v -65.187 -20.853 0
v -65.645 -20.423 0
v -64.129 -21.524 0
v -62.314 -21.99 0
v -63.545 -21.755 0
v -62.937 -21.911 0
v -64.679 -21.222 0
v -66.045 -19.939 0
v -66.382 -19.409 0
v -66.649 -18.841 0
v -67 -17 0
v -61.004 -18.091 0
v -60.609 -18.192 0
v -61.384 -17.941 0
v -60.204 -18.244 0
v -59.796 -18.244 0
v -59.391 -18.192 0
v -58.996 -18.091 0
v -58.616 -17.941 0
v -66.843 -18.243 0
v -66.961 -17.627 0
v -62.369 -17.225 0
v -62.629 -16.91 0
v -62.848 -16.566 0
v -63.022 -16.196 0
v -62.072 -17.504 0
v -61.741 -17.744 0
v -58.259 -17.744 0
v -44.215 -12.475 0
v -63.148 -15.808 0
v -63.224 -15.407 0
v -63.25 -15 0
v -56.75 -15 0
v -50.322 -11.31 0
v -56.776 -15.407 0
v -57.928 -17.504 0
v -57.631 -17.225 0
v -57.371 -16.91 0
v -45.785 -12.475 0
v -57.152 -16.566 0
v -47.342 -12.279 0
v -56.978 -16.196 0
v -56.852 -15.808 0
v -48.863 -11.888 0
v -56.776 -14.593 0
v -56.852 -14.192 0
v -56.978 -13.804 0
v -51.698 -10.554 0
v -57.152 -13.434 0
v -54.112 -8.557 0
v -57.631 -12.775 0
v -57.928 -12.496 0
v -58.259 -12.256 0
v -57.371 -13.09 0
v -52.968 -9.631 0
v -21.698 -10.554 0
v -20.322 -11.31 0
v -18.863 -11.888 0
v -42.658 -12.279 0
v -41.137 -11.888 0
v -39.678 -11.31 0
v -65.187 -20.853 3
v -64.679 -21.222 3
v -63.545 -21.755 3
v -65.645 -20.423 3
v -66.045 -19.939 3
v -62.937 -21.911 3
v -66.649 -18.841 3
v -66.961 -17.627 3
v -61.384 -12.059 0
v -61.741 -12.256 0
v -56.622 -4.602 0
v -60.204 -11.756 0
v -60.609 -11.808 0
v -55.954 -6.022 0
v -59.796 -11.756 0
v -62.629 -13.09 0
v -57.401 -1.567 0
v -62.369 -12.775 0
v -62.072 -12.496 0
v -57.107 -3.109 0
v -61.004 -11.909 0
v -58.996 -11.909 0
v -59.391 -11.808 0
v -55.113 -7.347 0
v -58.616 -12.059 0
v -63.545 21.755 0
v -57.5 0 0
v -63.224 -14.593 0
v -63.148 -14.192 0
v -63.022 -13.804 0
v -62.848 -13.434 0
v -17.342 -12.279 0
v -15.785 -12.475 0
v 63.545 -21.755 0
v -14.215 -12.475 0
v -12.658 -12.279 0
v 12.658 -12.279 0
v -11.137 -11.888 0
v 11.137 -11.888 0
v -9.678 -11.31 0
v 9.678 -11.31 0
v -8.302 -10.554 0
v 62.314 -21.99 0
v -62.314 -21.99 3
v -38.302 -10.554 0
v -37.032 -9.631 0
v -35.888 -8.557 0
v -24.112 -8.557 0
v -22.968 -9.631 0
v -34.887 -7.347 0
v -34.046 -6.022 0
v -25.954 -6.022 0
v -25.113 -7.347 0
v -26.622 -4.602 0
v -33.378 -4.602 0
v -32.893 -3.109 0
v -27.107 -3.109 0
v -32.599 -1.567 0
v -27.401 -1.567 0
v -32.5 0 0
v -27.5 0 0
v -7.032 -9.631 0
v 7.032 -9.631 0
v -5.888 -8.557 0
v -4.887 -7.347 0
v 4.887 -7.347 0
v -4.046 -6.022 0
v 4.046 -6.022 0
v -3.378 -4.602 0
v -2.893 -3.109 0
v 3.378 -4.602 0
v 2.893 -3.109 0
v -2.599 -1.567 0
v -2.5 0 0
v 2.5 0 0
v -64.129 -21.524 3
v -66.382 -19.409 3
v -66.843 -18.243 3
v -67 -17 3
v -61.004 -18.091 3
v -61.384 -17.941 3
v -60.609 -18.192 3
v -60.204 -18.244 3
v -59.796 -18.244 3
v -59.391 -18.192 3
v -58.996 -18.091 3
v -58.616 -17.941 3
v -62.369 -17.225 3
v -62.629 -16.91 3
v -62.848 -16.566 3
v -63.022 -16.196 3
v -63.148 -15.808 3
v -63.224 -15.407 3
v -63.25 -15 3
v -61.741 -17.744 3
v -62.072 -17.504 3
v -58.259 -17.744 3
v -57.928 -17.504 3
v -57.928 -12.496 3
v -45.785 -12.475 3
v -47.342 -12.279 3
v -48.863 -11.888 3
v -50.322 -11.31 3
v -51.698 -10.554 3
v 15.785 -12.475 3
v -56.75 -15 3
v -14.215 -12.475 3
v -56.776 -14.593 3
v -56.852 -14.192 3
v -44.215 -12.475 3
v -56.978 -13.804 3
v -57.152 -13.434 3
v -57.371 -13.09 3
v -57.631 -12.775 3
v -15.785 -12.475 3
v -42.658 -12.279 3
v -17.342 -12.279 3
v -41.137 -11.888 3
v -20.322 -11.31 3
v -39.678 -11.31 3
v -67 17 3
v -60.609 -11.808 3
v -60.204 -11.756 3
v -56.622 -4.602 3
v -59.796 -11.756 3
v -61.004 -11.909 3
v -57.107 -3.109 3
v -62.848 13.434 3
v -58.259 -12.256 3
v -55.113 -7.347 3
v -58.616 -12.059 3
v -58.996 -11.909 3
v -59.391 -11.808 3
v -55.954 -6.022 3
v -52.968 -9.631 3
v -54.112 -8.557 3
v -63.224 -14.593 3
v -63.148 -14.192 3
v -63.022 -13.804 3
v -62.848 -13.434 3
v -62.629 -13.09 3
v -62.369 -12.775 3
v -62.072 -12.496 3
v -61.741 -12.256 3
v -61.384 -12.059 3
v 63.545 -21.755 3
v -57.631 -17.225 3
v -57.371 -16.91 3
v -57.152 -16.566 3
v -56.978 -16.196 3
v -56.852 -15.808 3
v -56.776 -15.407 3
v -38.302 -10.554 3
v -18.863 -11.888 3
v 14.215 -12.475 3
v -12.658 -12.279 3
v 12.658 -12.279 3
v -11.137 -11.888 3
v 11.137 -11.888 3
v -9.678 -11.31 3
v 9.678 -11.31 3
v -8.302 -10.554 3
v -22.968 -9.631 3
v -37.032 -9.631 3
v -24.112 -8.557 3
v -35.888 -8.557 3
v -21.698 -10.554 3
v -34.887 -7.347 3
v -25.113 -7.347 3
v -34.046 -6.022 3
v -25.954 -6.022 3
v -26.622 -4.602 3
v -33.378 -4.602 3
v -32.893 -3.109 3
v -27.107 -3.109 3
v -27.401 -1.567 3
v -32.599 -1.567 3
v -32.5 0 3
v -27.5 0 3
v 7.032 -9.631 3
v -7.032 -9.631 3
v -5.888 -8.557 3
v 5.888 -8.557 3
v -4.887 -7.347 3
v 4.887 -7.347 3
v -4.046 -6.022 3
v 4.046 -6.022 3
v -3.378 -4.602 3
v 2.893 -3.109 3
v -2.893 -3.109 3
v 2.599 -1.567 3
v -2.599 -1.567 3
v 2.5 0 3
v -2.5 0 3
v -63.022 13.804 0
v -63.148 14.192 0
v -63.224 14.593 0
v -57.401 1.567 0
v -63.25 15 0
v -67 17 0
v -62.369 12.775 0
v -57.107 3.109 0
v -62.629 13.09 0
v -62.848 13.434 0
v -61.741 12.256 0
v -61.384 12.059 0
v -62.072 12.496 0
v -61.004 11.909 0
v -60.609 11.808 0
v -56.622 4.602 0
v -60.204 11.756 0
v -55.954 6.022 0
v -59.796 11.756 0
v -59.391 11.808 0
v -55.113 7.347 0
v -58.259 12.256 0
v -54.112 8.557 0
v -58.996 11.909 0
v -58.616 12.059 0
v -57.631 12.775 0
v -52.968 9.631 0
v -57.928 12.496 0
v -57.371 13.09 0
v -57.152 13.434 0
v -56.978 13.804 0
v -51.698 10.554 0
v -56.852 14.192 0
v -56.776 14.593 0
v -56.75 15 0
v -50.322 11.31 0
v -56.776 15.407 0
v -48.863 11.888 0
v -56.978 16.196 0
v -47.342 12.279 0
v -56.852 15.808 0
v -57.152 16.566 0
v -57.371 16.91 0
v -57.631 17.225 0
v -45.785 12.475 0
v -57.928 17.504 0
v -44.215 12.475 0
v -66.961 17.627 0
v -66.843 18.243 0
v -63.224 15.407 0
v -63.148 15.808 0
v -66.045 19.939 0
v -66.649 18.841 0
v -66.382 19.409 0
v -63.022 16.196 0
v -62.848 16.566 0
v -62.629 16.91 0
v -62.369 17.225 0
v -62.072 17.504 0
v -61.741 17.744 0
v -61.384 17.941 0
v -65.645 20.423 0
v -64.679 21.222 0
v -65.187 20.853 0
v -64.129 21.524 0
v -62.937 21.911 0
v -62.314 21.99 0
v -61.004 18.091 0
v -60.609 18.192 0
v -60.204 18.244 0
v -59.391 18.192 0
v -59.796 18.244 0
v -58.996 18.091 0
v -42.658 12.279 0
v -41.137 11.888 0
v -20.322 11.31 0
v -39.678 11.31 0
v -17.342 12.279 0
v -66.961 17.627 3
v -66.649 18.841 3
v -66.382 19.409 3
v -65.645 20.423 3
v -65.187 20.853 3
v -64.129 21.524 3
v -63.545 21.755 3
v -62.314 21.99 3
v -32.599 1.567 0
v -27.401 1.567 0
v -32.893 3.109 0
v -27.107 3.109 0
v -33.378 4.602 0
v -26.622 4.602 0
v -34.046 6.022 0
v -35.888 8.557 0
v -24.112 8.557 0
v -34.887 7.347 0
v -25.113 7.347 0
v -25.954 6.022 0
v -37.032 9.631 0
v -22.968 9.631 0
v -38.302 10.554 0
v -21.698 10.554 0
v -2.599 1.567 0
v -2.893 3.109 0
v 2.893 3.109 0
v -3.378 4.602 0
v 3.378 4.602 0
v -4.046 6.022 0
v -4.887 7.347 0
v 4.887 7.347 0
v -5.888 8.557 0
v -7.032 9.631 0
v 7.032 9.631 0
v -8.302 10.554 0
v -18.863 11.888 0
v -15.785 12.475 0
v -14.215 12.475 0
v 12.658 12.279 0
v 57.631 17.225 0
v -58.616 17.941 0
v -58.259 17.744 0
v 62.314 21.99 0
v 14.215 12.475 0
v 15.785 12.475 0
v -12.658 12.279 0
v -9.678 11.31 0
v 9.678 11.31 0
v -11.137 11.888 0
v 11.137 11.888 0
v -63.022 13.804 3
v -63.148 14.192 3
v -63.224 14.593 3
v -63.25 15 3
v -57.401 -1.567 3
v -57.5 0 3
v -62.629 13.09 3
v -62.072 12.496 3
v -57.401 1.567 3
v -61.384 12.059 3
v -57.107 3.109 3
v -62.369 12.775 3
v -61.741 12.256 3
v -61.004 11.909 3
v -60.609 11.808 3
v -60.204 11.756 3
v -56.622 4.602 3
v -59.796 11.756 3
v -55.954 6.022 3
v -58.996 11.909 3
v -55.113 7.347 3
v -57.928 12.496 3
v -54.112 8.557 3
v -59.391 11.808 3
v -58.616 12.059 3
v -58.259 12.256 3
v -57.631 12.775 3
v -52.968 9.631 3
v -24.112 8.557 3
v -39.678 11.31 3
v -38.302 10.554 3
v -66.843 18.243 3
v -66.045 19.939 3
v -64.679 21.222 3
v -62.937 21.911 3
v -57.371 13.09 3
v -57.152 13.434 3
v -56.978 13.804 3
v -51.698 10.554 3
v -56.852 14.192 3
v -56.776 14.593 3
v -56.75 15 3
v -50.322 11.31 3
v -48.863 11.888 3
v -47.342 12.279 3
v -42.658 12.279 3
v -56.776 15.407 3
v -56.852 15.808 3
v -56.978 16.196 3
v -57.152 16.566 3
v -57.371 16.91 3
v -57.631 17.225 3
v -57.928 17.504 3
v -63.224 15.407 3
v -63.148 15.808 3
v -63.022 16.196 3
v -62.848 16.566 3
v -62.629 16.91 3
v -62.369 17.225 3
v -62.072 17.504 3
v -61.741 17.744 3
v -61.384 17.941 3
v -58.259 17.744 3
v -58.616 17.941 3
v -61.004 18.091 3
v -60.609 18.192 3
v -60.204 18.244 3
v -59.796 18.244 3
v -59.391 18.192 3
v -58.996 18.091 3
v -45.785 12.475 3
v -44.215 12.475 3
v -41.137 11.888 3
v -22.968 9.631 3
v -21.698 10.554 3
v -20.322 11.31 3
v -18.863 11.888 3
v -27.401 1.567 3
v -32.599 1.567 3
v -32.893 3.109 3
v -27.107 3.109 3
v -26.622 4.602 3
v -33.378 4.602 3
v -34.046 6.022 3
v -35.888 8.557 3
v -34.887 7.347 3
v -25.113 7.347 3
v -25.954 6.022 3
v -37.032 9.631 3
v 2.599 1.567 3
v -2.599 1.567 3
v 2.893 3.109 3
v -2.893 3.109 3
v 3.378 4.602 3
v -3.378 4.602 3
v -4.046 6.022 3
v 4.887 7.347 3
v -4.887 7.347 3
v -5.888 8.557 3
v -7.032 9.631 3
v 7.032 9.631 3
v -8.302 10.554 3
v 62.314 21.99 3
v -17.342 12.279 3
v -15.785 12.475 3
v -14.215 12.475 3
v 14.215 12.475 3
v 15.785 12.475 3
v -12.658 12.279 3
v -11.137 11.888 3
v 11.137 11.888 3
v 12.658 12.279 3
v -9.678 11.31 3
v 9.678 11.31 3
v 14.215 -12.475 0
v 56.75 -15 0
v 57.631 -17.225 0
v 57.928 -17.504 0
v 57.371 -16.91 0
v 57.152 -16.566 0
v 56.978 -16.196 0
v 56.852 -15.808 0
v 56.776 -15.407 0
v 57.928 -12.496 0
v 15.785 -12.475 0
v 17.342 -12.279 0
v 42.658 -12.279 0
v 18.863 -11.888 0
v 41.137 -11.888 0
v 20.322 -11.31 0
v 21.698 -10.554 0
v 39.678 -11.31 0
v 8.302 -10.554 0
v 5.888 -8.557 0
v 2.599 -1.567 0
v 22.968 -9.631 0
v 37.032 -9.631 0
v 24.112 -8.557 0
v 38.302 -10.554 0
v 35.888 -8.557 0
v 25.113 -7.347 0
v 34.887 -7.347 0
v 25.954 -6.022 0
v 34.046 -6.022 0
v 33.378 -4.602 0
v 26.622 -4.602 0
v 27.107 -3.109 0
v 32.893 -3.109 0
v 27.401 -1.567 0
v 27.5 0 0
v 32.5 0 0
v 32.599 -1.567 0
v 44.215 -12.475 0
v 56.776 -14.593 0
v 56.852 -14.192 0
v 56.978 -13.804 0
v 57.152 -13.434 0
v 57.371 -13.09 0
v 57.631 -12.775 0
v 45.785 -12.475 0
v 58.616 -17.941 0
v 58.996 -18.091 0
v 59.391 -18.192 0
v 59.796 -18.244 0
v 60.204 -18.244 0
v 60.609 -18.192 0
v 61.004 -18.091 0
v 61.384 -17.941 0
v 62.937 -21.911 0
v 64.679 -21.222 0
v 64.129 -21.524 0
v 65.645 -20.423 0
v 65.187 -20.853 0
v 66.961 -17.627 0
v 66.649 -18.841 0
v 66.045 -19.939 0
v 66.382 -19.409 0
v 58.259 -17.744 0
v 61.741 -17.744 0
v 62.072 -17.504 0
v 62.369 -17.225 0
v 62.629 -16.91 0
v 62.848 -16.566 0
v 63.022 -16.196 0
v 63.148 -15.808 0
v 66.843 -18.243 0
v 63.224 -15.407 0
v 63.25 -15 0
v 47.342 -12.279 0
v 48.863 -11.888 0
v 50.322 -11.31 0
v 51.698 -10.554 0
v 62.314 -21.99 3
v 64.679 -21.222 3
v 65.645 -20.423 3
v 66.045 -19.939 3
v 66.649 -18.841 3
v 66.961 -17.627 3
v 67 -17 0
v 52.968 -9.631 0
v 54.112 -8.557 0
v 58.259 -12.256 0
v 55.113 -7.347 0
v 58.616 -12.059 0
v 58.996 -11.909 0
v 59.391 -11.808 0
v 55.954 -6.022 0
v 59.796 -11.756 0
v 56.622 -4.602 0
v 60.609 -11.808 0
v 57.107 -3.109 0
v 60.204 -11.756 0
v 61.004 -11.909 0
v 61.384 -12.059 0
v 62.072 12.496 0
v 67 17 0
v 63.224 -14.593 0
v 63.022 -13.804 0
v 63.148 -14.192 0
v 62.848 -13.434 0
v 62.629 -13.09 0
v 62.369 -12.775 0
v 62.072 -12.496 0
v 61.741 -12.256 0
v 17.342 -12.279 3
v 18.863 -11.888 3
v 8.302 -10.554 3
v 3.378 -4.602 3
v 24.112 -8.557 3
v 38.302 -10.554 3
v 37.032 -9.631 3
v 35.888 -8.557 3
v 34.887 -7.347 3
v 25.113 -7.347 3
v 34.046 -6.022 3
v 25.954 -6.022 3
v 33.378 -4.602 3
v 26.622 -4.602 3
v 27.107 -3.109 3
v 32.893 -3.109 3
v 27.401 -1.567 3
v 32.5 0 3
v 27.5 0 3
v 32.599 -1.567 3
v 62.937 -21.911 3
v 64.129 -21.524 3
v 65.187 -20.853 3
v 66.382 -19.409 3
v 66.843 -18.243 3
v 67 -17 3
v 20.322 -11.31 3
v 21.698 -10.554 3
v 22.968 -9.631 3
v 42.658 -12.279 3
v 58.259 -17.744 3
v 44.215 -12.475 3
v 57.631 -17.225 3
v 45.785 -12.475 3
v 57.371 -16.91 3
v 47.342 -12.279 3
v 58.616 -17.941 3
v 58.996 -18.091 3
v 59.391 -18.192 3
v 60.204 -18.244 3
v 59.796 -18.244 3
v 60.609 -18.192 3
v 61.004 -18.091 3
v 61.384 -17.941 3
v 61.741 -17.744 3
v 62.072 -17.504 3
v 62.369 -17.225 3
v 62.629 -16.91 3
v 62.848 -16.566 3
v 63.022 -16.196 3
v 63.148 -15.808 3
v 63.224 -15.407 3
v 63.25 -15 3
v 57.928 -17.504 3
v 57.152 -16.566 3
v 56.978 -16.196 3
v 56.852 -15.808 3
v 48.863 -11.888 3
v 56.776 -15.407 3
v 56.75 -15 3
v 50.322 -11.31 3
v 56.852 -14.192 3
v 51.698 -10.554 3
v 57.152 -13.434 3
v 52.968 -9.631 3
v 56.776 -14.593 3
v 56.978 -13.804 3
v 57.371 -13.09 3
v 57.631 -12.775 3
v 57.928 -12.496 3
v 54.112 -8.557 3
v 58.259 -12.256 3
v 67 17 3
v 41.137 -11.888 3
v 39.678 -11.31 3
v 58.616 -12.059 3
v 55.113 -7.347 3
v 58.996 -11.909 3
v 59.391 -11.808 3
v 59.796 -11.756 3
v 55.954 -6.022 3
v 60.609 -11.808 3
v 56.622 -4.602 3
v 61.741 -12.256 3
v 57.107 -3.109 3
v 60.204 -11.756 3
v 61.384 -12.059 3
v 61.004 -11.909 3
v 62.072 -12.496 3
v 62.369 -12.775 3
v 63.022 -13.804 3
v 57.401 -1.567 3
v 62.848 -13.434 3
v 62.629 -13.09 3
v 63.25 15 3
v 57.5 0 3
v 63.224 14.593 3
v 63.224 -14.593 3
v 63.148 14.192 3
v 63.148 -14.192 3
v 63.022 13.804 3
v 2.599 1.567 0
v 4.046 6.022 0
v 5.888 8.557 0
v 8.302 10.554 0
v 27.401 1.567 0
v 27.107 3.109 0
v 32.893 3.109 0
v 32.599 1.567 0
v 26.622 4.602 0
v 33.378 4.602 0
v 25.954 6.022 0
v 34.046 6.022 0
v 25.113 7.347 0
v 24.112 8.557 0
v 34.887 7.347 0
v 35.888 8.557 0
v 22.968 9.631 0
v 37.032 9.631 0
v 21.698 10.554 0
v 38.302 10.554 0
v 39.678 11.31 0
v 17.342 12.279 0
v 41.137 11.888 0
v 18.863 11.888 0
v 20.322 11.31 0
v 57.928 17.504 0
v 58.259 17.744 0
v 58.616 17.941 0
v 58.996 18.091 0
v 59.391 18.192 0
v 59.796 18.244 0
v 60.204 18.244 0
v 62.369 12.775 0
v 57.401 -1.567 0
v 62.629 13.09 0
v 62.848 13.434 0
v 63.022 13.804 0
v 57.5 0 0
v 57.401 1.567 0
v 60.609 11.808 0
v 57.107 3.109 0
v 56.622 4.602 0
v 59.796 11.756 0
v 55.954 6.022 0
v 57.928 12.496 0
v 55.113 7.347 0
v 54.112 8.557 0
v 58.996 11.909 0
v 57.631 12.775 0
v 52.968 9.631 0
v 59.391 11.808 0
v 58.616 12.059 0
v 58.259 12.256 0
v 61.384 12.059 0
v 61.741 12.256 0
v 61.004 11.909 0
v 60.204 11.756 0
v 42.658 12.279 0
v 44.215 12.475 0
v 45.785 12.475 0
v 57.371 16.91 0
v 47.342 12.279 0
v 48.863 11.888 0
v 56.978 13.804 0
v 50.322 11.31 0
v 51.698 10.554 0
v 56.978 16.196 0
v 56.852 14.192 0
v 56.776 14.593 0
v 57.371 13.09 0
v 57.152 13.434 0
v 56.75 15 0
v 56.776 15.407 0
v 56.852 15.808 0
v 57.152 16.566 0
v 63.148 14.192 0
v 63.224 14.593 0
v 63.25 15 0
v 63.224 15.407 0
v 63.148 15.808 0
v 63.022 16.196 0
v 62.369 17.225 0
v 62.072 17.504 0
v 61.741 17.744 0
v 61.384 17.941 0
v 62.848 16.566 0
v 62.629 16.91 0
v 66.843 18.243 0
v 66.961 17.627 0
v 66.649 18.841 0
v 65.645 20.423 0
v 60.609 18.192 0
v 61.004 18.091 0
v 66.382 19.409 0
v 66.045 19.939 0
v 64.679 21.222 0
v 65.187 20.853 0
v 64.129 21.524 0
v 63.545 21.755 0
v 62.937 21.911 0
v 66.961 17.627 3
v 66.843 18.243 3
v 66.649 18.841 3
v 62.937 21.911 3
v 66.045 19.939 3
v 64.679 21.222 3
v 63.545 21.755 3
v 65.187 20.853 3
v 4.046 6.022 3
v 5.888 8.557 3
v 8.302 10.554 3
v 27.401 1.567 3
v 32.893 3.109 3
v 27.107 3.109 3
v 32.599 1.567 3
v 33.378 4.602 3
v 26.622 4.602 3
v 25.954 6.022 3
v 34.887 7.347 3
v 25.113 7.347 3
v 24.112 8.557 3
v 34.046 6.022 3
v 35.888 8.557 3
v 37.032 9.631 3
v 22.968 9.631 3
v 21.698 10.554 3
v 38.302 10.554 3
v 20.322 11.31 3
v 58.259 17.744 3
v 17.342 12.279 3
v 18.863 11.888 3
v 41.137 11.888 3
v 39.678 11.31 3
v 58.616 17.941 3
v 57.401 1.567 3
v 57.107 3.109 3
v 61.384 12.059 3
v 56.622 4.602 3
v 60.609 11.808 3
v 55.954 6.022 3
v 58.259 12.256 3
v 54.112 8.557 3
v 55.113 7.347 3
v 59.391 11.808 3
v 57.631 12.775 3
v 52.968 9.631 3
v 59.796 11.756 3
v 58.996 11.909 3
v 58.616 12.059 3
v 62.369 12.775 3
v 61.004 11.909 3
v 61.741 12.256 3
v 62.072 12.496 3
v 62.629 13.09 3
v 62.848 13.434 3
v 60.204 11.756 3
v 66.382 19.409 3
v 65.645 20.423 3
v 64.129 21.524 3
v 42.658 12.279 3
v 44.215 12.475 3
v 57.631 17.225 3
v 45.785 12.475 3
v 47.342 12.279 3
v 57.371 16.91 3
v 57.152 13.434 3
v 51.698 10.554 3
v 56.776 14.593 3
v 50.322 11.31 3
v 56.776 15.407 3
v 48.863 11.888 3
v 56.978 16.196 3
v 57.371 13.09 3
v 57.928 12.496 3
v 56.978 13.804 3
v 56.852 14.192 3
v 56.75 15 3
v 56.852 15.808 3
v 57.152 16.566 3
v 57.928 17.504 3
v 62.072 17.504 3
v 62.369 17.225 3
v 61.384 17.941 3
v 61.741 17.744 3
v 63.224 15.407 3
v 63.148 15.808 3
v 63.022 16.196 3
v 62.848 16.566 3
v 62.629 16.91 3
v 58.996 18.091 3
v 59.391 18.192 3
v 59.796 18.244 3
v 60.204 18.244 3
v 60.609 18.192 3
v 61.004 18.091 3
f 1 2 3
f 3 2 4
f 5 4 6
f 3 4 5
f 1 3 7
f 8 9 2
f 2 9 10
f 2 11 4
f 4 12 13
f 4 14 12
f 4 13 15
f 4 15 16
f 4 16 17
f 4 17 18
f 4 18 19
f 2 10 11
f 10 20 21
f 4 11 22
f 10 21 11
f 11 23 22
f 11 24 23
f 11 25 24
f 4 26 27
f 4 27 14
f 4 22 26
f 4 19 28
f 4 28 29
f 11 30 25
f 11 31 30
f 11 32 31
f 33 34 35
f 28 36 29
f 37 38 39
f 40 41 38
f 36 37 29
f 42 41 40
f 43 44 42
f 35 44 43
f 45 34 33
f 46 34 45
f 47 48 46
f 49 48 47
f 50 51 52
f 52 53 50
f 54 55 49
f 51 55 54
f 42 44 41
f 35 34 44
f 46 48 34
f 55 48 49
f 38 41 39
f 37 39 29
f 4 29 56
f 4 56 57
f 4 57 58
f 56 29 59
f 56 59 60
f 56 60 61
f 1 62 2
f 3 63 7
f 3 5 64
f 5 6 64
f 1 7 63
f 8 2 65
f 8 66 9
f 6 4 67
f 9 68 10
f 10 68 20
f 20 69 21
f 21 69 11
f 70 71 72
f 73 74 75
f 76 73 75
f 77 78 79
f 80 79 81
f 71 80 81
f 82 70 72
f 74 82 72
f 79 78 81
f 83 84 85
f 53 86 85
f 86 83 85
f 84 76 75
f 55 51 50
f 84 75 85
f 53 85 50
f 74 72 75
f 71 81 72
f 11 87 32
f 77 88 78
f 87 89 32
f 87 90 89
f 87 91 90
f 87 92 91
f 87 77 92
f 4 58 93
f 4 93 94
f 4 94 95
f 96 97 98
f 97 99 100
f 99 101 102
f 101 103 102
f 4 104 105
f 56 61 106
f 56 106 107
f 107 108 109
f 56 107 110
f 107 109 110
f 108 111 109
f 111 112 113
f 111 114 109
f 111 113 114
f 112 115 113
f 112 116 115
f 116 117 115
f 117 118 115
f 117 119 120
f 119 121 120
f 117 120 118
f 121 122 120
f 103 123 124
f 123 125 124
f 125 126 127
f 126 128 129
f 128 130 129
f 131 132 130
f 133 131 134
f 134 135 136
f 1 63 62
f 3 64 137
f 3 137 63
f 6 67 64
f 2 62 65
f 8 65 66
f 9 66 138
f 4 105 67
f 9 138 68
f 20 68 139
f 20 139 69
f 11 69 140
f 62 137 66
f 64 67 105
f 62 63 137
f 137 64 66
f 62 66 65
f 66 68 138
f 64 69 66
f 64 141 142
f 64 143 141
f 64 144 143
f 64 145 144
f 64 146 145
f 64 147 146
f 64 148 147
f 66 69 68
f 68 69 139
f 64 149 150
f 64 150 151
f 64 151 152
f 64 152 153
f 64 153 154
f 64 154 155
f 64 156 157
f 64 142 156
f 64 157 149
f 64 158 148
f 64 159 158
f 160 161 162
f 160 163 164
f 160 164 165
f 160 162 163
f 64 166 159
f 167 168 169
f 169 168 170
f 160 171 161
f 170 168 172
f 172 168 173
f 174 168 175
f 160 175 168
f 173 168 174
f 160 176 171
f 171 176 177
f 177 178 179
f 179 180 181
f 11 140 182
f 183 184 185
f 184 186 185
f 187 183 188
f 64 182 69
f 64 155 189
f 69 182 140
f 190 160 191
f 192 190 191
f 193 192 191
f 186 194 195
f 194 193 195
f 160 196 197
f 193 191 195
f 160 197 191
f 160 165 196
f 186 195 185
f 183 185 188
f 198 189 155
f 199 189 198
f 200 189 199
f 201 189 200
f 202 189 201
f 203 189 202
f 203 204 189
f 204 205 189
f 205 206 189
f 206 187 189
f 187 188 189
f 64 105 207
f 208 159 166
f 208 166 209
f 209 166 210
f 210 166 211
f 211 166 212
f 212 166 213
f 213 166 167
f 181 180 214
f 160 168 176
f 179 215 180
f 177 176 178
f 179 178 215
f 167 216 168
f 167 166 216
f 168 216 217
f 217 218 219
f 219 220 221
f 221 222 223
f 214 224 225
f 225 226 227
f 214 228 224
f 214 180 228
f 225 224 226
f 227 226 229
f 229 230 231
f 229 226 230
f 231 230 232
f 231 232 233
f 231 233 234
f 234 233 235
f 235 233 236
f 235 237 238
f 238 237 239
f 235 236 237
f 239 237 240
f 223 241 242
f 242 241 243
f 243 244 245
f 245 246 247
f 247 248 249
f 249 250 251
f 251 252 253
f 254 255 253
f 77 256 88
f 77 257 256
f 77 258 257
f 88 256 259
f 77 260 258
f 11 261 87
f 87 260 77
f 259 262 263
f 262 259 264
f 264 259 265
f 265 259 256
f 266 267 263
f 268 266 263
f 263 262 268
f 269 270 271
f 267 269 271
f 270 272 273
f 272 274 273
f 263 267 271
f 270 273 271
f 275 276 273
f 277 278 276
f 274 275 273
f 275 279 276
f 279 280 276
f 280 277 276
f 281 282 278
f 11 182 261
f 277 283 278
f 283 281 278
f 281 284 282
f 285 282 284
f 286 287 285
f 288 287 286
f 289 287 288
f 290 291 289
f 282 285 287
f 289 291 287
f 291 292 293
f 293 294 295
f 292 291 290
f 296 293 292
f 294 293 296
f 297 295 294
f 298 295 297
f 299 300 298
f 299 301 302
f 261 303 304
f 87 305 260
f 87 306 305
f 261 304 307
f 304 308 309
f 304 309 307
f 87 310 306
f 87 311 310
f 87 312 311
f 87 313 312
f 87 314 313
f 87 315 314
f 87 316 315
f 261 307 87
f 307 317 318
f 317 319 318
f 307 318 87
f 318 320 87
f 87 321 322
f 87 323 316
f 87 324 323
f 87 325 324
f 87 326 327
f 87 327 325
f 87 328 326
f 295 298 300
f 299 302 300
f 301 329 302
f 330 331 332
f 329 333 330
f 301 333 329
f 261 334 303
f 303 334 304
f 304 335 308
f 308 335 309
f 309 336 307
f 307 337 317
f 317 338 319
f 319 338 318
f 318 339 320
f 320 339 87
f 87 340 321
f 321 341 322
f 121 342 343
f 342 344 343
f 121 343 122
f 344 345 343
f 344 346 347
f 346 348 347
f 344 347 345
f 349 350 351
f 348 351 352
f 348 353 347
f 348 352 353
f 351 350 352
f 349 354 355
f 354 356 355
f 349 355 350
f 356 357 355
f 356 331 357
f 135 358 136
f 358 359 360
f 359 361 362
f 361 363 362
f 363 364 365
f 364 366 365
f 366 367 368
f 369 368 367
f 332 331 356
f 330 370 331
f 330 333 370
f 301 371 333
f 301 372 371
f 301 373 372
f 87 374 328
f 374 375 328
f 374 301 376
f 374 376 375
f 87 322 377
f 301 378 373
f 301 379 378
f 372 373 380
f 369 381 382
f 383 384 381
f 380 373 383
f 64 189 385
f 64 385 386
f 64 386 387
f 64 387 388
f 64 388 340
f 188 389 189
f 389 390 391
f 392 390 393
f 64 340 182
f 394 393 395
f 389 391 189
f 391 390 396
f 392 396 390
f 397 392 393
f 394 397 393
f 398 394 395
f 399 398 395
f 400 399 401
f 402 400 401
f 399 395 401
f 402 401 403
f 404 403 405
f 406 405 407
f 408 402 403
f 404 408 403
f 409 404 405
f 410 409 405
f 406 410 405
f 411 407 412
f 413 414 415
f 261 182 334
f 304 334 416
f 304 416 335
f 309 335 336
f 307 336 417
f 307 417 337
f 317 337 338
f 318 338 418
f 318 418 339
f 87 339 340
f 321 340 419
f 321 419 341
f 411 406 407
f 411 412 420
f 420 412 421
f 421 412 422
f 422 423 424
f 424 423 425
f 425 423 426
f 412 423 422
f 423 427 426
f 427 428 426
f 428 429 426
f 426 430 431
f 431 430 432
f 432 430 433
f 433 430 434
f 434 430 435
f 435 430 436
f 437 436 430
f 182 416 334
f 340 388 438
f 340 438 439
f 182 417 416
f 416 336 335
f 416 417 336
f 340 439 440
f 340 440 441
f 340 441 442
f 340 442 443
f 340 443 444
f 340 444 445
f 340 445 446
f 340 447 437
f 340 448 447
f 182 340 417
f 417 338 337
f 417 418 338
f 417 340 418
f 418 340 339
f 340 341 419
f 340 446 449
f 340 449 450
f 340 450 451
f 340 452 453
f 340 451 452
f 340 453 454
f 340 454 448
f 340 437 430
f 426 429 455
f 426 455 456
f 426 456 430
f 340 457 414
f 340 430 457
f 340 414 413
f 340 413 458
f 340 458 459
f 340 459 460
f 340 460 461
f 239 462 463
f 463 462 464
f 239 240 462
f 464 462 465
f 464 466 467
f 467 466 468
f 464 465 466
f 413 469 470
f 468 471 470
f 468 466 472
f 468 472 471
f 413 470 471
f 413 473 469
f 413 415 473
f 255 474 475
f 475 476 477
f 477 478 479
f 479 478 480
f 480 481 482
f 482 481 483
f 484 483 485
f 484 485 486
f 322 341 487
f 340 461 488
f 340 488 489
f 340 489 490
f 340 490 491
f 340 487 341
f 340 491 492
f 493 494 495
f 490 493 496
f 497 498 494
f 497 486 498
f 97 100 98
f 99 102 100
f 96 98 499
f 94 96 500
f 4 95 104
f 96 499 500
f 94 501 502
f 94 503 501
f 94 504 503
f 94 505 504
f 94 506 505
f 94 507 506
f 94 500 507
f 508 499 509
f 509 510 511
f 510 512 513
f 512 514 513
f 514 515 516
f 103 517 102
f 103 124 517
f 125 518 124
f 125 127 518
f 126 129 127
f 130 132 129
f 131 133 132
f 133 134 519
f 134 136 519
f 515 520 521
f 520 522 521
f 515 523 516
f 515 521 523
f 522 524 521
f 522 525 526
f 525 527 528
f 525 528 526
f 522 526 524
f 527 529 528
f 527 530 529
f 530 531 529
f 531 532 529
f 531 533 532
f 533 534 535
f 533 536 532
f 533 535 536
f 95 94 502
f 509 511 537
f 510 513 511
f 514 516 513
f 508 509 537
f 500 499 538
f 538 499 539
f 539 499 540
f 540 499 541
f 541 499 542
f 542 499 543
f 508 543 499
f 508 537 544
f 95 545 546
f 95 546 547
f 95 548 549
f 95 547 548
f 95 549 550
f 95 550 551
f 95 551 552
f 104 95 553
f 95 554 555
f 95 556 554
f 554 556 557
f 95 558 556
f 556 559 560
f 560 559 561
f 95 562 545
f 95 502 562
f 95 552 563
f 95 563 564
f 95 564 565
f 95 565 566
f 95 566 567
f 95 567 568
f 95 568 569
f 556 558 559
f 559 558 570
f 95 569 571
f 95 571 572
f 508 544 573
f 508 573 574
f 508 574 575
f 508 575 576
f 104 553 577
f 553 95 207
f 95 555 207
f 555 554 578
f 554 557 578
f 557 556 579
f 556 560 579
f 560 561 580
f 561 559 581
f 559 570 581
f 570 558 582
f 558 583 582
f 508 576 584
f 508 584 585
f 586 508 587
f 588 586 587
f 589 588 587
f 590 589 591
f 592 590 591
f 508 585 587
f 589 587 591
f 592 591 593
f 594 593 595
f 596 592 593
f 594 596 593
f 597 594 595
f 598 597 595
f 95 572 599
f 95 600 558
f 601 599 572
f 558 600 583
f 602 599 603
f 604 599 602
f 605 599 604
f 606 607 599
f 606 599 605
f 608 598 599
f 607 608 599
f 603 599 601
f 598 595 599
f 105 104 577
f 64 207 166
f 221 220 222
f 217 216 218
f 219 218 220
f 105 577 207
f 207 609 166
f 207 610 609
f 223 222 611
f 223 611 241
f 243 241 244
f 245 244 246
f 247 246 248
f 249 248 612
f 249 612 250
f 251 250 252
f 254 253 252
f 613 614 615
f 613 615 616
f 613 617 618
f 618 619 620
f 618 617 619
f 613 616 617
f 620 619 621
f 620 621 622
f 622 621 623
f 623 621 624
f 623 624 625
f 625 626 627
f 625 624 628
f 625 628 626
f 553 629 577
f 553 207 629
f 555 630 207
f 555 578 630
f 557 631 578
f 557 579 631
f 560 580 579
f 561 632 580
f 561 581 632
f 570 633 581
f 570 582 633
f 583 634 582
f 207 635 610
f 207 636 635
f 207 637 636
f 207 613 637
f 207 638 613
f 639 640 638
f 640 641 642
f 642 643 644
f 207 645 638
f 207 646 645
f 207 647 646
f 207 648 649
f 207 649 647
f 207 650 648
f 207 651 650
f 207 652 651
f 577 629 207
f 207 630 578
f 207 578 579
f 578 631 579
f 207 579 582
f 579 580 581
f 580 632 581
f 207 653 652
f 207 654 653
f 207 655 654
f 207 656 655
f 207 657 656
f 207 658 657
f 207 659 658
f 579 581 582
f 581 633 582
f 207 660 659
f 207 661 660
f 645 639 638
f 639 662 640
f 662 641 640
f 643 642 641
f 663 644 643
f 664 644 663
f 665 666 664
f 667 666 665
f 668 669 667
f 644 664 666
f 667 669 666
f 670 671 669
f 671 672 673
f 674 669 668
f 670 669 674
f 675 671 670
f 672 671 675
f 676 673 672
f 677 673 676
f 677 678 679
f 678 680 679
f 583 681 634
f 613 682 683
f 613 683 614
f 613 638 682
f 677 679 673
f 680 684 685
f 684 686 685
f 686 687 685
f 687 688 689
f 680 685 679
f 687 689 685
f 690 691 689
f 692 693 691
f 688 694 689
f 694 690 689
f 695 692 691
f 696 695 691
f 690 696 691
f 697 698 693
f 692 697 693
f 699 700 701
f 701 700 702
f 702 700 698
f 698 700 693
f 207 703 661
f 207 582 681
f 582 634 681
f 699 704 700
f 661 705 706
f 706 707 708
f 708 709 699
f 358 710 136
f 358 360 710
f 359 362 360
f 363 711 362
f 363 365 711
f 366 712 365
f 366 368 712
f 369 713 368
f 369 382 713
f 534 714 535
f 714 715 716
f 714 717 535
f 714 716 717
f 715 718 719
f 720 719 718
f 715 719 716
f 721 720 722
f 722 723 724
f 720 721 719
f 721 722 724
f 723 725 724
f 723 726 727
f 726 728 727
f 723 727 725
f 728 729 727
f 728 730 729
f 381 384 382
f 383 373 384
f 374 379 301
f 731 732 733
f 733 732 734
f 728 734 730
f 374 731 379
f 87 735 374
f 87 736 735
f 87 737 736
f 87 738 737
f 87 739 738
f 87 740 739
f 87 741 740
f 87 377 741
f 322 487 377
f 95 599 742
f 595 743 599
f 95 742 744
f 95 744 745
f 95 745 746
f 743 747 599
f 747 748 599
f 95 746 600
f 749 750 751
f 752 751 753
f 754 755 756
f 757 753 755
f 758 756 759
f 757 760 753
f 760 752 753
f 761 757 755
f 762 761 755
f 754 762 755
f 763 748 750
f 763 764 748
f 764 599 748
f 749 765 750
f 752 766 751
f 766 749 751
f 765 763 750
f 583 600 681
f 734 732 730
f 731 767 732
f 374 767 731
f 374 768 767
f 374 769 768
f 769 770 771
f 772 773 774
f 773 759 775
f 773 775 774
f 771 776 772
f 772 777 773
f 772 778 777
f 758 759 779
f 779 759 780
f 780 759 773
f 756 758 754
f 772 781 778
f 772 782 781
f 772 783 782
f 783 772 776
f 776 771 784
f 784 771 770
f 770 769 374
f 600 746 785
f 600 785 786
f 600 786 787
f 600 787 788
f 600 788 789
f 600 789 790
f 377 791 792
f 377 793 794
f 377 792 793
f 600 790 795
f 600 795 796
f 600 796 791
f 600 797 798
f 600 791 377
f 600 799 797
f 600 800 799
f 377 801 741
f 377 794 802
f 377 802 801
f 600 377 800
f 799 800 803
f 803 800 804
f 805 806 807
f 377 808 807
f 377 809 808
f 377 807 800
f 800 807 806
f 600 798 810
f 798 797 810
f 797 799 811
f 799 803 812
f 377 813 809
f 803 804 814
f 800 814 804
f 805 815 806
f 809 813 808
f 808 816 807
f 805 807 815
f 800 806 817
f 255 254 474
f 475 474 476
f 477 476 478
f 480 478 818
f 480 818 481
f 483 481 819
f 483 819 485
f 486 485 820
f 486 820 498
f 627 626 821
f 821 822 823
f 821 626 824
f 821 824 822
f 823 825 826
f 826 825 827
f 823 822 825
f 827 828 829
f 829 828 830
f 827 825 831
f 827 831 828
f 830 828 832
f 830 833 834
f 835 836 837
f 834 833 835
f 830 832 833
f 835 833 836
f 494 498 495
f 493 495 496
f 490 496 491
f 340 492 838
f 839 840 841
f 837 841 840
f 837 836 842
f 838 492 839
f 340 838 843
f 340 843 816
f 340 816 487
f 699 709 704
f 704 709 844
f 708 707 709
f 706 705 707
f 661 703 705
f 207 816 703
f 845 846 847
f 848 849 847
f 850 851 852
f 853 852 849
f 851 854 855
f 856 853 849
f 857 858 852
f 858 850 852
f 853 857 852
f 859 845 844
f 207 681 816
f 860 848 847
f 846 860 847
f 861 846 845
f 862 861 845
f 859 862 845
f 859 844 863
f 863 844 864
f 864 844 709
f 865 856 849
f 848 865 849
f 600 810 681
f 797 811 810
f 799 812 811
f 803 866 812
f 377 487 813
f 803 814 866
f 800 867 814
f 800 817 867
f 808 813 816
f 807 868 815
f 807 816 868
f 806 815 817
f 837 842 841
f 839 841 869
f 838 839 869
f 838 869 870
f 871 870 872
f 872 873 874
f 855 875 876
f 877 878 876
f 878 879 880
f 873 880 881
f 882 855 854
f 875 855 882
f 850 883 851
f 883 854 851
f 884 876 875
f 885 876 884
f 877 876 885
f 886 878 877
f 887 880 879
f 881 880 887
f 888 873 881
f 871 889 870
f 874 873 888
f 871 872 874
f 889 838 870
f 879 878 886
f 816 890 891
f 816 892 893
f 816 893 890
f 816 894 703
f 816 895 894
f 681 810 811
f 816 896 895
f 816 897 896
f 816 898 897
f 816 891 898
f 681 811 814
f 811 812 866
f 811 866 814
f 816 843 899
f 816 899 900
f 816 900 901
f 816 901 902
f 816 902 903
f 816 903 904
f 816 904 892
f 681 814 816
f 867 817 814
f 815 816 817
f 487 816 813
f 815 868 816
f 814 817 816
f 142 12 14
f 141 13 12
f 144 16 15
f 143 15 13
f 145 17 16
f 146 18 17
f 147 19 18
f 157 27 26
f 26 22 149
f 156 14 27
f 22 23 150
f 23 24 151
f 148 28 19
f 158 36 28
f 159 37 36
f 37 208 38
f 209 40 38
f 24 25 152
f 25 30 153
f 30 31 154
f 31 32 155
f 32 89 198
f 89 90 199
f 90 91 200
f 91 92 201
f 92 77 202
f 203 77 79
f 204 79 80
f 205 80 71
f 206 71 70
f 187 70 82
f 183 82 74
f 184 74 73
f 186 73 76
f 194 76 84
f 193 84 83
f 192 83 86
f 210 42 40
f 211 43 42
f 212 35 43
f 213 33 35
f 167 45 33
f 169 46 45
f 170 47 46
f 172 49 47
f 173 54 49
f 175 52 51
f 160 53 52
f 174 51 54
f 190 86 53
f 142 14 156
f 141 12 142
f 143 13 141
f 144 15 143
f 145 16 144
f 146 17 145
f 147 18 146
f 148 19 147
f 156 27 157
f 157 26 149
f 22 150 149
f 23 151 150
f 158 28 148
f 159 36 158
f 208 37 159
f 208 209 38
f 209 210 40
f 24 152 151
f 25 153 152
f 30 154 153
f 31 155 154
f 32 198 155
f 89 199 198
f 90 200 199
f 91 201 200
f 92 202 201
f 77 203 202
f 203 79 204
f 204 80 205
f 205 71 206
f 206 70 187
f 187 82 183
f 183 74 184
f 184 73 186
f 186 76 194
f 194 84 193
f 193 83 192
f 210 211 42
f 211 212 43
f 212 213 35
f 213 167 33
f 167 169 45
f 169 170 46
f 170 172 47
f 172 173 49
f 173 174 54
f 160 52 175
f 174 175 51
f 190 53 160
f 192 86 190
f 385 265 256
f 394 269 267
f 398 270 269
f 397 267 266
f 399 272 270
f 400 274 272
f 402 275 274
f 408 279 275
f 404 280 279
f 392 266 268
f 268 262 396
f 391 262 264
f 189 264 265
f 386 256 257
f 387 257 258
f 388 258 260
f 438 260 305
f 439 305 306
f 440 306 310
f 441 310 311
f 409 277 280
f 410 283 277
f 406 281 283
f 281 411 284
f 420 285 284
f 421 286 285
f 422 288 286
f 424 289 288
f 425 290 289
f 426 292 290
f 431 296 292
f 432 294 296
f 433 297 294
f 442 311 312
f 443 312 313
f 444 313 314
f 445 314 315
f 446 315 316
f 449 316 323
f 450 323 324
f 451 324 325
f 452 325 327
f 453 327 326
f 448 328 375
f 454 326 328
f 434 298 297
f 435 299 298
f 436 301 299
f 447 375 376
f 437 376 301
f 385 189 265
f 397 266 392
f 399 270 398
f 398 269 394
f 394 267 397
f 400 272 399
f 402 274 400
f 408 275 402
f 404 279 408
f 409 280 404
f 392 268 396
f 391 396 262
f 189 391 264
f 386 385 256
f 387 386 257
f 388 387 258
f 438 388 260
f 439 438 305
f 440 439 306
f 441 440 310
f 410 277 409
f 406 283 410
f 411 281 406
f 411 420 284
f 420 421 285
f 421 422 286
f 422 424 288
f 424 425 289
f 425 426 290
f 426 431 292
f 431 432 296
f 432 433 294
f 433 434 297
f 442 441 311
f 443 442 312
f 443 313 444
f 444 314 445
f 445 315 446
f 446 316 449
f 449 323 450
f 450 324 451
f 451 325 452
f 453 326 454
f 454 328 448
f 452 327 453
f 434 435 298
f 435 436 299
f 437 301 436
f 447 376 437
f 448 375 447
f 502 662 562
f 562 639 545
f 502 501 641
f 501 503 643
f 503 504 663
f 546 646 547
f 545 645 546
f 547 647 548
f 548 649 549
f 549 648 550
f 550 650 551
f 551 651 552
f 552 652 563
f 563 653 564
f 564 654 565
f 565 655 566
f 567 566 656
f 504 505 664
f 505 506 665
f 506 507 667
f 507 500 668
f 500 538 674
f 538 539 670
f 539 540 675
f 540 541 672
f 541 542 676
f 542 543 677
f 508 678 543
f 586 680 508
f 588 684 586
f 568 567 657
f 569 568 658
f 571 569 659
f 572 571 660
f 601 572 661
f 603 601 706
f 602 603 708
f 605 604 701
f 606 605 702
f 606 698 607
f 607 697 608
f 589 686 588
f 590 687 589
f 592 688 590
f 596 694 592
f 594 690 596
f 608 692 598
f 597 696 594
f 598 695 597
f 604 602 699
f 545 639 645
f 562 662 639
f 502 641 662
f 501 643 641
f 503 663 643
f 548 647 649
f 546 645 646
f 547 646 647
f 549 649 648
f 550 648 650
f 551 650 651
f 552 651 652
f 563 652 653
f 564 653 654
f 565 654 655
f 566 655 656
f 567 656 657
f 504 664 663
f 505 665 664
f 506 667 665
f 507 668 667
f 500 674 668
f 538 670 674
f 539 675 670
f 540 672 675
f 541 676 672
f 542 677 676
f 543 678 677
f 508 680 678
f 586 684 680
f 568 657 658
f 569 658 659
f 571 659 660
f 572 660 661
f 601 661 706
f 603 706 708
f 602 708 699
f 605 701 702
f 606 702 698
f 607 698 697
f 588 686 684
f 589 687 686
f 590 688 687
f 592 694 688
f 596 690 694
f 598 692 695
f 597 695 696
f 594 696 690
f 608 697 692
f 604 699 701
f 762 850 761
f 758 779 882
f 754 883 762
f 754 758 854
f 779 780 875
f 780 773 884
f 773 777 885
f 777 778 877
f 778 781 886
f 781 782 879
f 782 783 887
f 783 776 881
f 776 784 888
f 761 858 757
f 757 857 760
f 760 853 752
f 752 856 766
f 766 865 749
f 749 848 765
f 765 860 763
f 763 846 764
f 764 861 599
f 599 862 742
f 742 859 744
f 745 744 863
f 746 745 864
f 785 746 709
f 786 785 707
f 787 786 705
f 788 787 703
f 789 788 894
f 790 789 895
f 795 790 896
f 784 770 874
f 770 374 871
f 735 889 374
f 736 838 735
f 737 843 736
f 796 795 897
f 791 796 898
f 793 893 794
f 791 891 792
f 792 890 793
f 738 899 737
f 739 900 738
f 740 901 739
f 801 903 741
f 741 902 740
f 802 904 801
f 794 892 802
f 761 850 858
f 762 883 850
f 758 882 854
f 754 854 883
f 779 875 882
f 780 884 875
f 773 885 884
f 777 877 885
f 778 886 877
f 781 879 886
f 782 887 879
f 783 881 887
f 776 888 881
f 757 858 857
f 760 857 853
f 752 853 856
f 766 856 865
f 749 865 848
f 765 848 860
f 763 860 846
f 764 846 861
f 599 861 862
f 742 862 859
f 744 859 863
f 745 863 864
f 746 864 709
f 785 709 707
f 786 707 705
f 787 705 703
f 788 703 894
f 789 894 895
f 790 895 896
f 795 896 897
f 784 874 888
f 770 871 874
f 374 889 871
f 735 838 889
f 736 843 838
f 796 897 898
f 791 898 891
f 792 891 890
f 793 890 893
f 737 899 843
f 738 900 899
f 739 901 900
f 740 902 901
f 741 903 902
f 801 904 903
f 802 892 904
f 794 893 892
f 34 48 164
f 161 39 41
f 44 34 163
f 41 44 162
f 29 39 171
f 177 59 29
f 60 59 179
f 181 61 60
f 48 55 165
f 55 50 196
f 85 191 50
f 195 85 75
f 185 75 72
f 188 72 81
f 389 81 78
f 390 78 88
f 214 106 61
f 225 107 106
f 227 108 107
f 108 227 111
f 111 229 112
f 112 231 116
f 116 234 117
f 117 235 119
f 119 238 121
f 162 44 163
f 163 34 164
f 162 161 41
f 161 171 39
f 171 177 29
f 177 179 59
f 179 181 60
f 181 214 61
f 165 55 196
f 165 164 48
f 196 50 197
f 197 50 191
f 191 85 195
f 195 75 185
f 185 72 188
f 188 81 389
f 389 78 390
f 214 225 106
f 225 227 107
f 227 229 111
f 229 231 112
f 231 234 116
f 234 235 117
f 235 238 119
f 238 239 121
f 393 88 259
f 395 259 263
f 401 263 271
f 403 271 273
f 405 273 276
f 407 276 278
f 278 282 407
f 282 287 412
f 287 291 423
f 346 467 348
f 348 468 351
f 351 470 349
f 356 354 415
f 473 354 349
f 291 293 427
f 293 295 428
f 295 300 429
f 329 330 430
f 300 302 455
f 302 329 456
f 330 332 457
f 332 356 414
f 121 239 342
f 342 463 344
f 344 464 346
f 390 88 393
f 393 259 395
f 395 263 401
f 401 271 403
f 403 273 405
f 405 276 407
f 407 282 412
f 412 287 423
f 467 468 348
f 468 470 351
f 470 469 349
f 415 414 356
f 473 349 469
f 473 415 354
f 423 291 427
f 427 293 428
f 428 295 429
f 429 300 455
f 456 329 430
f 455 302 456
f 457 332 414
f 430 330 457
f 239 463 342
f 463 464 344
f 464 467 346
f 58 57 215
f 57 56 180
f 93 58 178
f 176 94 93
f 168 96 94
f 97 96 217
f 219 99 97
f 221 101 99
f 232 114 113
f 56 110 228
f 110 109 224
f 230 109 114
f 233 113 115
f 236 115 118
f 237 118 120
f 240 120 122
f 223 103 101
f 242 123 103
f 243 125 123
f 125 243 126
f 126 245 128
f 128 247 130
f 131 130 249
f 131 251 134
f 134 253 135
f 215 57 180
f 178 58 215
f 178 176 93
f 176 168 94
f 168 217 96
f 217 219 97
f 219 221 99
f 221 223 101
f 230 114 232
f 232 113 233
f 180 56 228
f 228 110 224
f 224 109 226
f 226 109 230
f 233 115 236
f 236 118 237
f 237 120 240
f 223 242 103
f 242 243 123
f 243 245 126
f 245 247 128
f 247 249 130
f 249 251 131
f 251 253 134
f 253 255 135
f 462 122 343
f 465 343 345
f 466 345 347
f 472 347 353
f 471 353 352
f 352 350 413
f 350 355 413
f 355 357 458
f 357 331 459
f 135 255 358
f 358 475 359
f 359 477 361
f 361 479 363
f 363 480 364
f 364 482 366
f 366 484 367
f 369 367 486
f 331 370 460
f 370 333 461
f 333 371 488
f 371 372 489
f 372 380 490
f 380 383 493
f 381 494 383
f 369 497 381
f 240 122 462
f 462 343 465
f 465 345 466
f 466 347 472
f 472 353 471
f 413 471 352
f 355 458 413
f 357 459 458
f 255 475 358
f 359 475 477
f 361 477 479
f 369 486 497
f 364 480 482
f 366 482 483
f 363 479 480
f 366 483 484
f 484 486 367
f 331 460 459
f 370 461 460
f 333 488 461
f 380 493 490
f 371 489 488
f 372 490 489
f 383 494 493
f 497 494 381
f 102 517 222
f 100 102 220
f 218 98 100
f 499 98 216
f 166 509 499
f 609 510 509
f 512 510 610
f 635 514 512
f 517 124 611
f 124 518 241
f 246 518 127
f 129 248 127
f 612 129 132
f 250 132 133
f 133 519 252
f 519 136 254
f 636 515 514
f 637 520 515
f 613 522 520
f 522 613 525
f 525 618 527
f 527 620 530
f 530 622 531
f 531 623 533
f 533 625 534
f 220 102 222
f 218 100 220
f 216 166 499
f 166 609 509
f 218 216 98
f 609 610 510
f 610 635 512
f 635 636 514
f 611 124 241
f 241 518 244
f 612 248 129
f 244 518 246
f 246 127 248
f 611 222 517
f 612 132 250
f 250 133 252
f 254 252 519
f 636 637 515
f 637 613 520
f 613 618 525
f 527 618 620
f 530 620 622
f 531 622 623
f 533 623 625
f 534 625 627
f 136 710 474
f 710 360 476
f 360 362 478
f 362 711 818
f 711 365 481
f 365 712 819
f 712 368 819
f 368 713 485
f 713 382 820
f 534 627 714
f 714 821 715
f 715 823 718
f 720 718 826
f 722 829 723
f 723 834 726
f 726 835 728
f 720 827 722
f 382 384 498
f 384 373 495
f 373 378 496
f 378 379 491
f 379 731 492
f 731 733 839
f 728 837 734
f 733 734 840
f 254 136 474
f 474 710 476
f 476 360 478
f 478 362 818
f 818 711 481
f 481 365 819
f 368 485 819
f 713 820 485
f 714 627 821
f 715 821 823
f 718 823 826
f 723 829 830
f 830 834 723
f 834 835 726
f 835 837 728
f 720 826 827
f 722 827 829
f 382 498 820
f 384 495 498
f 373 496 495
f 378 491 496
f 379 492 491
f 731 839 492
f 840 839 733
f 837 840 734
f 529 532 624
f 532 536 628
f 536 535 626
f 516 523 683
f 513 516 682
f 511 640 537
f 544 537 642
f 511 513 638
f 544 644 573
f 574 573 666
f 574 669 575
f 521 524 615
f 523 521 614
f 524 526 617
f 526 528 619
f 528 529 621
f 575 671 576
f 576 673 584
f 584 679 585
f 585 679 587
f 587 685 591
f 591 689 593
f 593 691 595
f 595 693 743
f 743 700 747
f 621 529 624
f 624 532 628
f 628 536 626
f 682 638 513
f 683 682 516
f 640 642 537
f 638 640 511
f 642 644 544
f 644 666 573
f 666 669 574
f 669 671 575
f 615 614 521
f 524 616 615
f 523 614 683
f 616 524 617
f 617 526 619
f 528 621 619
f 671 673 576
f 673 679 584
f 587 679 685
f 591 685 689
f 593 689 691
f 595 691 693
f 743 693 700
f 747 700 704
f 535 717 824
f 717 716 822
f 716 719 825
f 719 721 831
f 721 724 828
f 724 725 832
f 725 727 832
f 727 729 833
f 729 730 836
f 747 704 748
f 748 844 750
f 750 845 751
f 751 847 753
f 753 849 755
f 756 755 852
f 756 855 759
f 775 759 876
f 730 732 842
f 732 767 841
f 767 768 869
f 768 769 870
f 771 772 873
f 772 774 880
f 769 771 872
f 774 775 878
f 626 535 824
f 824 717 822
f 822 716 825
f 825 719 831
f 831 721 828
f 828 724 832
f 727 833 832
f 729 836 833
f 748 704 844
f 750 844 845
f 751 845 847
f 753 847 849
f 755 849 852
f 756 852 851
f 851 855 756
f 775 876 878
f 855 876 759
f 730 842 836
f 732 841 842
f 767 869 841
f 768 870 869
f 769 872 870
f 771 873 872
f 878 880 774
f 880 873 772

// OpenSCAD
$fn = 50;

difference() {
	union() {
		hull() {
			translate(v = [-62.0, 17.0, 0]) {
				cylinder(h = 3, r = 5);
			}
			translate(v = [62.0, 17.0, 0]) {
				cylinder(h = 3, r = 5);
			}
			translate(v = [-62.0, -17.0, 0]) {
				cylinder(h = 3, r = 5);
			}
			translate(v = [62.0, -17.0, 0]) {
				cylinder(h = 3, r = 5);
			}
		}
	}
	union() {
		translate(v = [-60.0, -15.0, -100.0]) {
			cylinder(h = 200, r = 3.25);
		}
		translate(v = [-60.0, 15.0, -100.0]) {
			cylinder(h = 200, r = 3.25);
		}
		translate(v = [60.0, -15.0, -100.0]) {
			cylinder(h = 200, r = 3.25);
		}
		translate(v = [60.0, 15.0, -100.0]) {
			cylinder(h = 200, r = 3.25);
		}
		translate(v = [-60.0, -15.0, -100.0]) {
			cylinder(h = 200, r = 1.8);
		}
		translate(v = [-60.0, 15.0, -100.0]) {
			cylinder(h = 200, r = 1.8);
		}
		translate(v = [60.0, -15.0, -100.0]) {
			cylinder(h = 200, r = 1.8);
		}
		translate(v = [60.0, 15.0, -100.0]) {
			cylinder(h = 200, r = 1.8);
		}
		translate(v = [-45.0, 0, 0.0]) {
			cylinder(h = 3, r = 12.5);
		}
		translate(v = [-15.0, 0, 0.0]) {
			cylinder(h = 3, r = 12.5);
		}
		translate(v = [15.0, 0, 0.0]) {
			cylinder(h = 3, r = 12.5);
		}
		translate(v = [45.0, 0, 0.0]) {
			cylinder(h = 3, r = 12.5);
		}
	}
}
